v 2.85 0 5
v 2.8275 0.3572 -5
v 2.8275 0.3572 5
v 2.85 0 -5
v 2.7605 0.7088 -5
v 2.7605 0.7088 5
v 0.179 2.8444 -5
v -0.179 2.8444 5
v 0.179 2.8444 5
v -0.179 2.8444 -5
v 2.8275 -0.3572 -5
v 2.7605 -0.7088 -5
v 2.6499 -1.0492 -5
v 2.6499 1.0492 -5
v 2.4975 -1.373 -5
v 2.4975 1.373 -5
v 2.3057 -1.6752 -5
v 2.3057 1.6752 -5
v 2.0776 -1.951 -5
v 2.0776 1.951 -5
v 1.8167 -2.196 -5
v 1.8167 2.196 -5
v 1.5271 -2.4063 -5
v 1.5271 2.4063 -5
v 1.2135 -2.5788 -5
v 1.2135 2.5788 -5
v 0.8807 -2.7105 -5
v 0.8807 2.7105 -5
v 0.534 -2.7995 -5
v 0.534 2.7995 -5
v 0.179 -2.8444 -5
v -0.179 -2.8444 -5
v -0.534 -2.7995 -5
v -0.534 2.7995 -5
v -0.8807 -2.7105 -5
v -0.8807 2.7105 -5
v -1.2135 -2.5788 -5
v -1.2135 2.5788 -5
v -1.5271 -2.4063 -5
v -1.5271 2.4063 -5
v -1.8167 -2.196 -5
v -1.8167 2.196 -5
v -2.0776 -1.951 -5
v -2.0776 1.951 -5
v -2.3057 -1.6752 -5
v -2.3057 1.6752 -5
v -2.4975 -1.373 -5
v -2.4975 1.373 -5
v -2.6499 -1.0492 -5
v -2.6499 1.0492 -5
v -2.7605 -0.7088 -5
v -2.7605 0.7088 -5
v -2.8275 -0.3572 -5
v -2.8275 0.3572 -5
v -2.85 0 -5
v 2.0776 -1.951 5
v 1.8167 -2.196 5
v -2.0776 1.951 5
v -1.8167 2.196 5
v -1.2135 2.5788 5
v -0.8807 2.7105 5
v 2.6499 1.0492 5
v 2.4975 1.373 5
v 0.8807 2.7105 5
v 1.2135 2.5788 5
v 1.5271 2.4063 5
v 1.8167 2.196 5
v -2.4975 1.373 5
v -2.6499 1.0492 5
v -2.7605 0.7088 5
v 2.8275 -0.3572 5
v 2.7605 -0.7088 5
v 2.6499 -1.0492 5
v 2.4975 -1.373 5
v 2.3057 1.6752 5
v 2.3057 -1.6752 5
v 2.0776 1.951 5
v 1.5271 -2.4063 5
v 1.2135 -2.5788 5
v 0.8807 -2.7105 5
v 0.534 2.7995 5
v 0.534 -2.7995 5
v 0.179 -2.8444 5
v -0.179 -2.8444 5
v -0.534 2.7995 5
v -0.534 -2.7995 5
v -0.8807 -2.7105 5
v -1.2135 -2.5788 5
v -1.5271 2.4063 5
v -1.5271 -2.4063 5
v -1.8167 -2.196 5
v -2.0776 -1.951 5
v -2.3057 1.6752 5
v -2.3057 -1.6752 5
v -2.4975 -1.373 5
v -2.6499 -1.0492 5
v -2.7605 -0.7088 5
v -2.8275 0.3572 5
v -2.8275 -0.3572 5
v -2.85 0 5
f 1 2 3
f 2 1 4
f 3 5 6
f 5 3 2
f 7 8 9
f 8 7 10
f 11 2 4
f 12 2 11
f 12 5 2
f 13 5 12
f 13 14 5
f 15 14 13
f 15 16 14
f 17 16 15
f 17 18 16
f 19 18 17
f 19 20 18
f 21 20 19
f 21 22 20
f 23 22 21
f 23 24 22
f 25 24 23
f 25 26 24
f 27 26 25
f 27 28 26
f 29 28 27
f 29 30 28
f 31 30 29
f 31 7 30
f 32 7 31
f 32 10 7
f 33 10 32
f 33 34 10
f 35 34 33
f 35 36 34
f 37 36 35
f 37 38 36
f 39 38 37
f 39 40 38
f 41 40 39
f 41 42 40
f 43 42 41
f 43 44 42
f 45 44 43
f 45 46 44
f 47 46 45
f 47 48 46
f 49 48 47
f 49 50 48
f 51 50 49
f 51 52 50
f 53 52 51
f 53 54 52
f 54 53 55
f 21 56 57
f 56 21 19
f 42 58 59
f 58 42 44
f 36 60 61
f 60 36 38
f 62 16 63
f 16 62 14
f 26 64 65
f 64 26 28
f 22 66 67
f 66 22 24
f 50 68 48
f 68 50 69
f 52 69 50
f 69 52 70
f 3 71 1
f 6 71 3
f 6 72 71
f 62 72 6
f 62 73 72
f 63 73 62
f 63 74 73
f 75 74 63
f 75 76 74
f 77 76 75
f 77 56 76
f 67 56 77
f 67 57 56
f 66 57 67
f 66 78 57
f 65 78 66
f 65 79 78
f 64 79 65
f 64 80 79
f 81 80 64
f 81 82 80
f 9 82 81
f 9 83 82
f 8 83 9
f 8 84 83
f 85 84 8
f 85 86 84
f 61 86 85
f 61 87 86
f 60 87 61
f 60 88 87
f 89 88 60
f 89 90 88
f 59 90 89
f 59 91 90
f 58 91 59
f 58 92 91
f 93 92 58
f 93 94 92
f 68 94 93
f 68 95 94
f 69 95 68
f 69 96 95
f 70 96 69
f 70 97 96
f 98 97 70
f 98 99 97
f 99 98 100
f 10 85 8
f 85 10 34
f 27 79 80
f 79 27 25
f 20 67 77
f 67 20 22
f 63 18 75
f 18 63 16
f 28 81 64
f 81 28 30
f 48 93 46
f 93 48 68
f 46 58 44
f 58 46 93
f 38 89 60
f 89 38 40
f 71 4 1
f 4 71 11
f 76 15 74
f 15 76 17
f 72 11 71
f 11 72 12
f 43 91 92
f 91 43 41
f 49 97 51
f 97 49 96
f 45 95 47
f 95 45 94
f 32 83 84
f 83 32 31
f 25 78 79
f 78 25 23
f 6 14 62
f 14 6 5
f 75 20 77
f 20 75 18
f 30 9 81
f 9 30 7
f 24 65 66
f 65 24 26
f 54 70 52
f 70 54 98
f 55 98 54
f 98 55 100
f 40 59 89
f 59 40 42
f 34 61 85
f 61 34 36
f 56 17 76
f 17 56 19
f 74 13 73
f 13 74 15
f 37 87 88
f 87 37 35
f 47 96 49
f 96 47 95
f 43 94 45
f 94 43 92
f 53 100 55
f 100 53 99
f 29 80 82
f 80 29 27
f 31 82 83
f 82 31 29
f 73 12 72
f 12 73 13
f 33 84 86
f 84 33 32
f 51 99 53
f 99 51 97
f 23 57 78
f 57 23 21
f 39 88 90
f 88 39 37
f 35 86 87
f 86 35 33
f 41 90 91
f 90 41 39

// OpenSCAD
$fn = 50;


difference() {
	union() {
		translate(v = [0, 0, -5.0000000000]) {
			cylinder(h = 10, r = 2.8500000000);
		}
	}
	union() {
		translate(v = [0, 0, -100.0000000000]) {
			cylinder(h = 200, r = 0);
		}
	}
}
